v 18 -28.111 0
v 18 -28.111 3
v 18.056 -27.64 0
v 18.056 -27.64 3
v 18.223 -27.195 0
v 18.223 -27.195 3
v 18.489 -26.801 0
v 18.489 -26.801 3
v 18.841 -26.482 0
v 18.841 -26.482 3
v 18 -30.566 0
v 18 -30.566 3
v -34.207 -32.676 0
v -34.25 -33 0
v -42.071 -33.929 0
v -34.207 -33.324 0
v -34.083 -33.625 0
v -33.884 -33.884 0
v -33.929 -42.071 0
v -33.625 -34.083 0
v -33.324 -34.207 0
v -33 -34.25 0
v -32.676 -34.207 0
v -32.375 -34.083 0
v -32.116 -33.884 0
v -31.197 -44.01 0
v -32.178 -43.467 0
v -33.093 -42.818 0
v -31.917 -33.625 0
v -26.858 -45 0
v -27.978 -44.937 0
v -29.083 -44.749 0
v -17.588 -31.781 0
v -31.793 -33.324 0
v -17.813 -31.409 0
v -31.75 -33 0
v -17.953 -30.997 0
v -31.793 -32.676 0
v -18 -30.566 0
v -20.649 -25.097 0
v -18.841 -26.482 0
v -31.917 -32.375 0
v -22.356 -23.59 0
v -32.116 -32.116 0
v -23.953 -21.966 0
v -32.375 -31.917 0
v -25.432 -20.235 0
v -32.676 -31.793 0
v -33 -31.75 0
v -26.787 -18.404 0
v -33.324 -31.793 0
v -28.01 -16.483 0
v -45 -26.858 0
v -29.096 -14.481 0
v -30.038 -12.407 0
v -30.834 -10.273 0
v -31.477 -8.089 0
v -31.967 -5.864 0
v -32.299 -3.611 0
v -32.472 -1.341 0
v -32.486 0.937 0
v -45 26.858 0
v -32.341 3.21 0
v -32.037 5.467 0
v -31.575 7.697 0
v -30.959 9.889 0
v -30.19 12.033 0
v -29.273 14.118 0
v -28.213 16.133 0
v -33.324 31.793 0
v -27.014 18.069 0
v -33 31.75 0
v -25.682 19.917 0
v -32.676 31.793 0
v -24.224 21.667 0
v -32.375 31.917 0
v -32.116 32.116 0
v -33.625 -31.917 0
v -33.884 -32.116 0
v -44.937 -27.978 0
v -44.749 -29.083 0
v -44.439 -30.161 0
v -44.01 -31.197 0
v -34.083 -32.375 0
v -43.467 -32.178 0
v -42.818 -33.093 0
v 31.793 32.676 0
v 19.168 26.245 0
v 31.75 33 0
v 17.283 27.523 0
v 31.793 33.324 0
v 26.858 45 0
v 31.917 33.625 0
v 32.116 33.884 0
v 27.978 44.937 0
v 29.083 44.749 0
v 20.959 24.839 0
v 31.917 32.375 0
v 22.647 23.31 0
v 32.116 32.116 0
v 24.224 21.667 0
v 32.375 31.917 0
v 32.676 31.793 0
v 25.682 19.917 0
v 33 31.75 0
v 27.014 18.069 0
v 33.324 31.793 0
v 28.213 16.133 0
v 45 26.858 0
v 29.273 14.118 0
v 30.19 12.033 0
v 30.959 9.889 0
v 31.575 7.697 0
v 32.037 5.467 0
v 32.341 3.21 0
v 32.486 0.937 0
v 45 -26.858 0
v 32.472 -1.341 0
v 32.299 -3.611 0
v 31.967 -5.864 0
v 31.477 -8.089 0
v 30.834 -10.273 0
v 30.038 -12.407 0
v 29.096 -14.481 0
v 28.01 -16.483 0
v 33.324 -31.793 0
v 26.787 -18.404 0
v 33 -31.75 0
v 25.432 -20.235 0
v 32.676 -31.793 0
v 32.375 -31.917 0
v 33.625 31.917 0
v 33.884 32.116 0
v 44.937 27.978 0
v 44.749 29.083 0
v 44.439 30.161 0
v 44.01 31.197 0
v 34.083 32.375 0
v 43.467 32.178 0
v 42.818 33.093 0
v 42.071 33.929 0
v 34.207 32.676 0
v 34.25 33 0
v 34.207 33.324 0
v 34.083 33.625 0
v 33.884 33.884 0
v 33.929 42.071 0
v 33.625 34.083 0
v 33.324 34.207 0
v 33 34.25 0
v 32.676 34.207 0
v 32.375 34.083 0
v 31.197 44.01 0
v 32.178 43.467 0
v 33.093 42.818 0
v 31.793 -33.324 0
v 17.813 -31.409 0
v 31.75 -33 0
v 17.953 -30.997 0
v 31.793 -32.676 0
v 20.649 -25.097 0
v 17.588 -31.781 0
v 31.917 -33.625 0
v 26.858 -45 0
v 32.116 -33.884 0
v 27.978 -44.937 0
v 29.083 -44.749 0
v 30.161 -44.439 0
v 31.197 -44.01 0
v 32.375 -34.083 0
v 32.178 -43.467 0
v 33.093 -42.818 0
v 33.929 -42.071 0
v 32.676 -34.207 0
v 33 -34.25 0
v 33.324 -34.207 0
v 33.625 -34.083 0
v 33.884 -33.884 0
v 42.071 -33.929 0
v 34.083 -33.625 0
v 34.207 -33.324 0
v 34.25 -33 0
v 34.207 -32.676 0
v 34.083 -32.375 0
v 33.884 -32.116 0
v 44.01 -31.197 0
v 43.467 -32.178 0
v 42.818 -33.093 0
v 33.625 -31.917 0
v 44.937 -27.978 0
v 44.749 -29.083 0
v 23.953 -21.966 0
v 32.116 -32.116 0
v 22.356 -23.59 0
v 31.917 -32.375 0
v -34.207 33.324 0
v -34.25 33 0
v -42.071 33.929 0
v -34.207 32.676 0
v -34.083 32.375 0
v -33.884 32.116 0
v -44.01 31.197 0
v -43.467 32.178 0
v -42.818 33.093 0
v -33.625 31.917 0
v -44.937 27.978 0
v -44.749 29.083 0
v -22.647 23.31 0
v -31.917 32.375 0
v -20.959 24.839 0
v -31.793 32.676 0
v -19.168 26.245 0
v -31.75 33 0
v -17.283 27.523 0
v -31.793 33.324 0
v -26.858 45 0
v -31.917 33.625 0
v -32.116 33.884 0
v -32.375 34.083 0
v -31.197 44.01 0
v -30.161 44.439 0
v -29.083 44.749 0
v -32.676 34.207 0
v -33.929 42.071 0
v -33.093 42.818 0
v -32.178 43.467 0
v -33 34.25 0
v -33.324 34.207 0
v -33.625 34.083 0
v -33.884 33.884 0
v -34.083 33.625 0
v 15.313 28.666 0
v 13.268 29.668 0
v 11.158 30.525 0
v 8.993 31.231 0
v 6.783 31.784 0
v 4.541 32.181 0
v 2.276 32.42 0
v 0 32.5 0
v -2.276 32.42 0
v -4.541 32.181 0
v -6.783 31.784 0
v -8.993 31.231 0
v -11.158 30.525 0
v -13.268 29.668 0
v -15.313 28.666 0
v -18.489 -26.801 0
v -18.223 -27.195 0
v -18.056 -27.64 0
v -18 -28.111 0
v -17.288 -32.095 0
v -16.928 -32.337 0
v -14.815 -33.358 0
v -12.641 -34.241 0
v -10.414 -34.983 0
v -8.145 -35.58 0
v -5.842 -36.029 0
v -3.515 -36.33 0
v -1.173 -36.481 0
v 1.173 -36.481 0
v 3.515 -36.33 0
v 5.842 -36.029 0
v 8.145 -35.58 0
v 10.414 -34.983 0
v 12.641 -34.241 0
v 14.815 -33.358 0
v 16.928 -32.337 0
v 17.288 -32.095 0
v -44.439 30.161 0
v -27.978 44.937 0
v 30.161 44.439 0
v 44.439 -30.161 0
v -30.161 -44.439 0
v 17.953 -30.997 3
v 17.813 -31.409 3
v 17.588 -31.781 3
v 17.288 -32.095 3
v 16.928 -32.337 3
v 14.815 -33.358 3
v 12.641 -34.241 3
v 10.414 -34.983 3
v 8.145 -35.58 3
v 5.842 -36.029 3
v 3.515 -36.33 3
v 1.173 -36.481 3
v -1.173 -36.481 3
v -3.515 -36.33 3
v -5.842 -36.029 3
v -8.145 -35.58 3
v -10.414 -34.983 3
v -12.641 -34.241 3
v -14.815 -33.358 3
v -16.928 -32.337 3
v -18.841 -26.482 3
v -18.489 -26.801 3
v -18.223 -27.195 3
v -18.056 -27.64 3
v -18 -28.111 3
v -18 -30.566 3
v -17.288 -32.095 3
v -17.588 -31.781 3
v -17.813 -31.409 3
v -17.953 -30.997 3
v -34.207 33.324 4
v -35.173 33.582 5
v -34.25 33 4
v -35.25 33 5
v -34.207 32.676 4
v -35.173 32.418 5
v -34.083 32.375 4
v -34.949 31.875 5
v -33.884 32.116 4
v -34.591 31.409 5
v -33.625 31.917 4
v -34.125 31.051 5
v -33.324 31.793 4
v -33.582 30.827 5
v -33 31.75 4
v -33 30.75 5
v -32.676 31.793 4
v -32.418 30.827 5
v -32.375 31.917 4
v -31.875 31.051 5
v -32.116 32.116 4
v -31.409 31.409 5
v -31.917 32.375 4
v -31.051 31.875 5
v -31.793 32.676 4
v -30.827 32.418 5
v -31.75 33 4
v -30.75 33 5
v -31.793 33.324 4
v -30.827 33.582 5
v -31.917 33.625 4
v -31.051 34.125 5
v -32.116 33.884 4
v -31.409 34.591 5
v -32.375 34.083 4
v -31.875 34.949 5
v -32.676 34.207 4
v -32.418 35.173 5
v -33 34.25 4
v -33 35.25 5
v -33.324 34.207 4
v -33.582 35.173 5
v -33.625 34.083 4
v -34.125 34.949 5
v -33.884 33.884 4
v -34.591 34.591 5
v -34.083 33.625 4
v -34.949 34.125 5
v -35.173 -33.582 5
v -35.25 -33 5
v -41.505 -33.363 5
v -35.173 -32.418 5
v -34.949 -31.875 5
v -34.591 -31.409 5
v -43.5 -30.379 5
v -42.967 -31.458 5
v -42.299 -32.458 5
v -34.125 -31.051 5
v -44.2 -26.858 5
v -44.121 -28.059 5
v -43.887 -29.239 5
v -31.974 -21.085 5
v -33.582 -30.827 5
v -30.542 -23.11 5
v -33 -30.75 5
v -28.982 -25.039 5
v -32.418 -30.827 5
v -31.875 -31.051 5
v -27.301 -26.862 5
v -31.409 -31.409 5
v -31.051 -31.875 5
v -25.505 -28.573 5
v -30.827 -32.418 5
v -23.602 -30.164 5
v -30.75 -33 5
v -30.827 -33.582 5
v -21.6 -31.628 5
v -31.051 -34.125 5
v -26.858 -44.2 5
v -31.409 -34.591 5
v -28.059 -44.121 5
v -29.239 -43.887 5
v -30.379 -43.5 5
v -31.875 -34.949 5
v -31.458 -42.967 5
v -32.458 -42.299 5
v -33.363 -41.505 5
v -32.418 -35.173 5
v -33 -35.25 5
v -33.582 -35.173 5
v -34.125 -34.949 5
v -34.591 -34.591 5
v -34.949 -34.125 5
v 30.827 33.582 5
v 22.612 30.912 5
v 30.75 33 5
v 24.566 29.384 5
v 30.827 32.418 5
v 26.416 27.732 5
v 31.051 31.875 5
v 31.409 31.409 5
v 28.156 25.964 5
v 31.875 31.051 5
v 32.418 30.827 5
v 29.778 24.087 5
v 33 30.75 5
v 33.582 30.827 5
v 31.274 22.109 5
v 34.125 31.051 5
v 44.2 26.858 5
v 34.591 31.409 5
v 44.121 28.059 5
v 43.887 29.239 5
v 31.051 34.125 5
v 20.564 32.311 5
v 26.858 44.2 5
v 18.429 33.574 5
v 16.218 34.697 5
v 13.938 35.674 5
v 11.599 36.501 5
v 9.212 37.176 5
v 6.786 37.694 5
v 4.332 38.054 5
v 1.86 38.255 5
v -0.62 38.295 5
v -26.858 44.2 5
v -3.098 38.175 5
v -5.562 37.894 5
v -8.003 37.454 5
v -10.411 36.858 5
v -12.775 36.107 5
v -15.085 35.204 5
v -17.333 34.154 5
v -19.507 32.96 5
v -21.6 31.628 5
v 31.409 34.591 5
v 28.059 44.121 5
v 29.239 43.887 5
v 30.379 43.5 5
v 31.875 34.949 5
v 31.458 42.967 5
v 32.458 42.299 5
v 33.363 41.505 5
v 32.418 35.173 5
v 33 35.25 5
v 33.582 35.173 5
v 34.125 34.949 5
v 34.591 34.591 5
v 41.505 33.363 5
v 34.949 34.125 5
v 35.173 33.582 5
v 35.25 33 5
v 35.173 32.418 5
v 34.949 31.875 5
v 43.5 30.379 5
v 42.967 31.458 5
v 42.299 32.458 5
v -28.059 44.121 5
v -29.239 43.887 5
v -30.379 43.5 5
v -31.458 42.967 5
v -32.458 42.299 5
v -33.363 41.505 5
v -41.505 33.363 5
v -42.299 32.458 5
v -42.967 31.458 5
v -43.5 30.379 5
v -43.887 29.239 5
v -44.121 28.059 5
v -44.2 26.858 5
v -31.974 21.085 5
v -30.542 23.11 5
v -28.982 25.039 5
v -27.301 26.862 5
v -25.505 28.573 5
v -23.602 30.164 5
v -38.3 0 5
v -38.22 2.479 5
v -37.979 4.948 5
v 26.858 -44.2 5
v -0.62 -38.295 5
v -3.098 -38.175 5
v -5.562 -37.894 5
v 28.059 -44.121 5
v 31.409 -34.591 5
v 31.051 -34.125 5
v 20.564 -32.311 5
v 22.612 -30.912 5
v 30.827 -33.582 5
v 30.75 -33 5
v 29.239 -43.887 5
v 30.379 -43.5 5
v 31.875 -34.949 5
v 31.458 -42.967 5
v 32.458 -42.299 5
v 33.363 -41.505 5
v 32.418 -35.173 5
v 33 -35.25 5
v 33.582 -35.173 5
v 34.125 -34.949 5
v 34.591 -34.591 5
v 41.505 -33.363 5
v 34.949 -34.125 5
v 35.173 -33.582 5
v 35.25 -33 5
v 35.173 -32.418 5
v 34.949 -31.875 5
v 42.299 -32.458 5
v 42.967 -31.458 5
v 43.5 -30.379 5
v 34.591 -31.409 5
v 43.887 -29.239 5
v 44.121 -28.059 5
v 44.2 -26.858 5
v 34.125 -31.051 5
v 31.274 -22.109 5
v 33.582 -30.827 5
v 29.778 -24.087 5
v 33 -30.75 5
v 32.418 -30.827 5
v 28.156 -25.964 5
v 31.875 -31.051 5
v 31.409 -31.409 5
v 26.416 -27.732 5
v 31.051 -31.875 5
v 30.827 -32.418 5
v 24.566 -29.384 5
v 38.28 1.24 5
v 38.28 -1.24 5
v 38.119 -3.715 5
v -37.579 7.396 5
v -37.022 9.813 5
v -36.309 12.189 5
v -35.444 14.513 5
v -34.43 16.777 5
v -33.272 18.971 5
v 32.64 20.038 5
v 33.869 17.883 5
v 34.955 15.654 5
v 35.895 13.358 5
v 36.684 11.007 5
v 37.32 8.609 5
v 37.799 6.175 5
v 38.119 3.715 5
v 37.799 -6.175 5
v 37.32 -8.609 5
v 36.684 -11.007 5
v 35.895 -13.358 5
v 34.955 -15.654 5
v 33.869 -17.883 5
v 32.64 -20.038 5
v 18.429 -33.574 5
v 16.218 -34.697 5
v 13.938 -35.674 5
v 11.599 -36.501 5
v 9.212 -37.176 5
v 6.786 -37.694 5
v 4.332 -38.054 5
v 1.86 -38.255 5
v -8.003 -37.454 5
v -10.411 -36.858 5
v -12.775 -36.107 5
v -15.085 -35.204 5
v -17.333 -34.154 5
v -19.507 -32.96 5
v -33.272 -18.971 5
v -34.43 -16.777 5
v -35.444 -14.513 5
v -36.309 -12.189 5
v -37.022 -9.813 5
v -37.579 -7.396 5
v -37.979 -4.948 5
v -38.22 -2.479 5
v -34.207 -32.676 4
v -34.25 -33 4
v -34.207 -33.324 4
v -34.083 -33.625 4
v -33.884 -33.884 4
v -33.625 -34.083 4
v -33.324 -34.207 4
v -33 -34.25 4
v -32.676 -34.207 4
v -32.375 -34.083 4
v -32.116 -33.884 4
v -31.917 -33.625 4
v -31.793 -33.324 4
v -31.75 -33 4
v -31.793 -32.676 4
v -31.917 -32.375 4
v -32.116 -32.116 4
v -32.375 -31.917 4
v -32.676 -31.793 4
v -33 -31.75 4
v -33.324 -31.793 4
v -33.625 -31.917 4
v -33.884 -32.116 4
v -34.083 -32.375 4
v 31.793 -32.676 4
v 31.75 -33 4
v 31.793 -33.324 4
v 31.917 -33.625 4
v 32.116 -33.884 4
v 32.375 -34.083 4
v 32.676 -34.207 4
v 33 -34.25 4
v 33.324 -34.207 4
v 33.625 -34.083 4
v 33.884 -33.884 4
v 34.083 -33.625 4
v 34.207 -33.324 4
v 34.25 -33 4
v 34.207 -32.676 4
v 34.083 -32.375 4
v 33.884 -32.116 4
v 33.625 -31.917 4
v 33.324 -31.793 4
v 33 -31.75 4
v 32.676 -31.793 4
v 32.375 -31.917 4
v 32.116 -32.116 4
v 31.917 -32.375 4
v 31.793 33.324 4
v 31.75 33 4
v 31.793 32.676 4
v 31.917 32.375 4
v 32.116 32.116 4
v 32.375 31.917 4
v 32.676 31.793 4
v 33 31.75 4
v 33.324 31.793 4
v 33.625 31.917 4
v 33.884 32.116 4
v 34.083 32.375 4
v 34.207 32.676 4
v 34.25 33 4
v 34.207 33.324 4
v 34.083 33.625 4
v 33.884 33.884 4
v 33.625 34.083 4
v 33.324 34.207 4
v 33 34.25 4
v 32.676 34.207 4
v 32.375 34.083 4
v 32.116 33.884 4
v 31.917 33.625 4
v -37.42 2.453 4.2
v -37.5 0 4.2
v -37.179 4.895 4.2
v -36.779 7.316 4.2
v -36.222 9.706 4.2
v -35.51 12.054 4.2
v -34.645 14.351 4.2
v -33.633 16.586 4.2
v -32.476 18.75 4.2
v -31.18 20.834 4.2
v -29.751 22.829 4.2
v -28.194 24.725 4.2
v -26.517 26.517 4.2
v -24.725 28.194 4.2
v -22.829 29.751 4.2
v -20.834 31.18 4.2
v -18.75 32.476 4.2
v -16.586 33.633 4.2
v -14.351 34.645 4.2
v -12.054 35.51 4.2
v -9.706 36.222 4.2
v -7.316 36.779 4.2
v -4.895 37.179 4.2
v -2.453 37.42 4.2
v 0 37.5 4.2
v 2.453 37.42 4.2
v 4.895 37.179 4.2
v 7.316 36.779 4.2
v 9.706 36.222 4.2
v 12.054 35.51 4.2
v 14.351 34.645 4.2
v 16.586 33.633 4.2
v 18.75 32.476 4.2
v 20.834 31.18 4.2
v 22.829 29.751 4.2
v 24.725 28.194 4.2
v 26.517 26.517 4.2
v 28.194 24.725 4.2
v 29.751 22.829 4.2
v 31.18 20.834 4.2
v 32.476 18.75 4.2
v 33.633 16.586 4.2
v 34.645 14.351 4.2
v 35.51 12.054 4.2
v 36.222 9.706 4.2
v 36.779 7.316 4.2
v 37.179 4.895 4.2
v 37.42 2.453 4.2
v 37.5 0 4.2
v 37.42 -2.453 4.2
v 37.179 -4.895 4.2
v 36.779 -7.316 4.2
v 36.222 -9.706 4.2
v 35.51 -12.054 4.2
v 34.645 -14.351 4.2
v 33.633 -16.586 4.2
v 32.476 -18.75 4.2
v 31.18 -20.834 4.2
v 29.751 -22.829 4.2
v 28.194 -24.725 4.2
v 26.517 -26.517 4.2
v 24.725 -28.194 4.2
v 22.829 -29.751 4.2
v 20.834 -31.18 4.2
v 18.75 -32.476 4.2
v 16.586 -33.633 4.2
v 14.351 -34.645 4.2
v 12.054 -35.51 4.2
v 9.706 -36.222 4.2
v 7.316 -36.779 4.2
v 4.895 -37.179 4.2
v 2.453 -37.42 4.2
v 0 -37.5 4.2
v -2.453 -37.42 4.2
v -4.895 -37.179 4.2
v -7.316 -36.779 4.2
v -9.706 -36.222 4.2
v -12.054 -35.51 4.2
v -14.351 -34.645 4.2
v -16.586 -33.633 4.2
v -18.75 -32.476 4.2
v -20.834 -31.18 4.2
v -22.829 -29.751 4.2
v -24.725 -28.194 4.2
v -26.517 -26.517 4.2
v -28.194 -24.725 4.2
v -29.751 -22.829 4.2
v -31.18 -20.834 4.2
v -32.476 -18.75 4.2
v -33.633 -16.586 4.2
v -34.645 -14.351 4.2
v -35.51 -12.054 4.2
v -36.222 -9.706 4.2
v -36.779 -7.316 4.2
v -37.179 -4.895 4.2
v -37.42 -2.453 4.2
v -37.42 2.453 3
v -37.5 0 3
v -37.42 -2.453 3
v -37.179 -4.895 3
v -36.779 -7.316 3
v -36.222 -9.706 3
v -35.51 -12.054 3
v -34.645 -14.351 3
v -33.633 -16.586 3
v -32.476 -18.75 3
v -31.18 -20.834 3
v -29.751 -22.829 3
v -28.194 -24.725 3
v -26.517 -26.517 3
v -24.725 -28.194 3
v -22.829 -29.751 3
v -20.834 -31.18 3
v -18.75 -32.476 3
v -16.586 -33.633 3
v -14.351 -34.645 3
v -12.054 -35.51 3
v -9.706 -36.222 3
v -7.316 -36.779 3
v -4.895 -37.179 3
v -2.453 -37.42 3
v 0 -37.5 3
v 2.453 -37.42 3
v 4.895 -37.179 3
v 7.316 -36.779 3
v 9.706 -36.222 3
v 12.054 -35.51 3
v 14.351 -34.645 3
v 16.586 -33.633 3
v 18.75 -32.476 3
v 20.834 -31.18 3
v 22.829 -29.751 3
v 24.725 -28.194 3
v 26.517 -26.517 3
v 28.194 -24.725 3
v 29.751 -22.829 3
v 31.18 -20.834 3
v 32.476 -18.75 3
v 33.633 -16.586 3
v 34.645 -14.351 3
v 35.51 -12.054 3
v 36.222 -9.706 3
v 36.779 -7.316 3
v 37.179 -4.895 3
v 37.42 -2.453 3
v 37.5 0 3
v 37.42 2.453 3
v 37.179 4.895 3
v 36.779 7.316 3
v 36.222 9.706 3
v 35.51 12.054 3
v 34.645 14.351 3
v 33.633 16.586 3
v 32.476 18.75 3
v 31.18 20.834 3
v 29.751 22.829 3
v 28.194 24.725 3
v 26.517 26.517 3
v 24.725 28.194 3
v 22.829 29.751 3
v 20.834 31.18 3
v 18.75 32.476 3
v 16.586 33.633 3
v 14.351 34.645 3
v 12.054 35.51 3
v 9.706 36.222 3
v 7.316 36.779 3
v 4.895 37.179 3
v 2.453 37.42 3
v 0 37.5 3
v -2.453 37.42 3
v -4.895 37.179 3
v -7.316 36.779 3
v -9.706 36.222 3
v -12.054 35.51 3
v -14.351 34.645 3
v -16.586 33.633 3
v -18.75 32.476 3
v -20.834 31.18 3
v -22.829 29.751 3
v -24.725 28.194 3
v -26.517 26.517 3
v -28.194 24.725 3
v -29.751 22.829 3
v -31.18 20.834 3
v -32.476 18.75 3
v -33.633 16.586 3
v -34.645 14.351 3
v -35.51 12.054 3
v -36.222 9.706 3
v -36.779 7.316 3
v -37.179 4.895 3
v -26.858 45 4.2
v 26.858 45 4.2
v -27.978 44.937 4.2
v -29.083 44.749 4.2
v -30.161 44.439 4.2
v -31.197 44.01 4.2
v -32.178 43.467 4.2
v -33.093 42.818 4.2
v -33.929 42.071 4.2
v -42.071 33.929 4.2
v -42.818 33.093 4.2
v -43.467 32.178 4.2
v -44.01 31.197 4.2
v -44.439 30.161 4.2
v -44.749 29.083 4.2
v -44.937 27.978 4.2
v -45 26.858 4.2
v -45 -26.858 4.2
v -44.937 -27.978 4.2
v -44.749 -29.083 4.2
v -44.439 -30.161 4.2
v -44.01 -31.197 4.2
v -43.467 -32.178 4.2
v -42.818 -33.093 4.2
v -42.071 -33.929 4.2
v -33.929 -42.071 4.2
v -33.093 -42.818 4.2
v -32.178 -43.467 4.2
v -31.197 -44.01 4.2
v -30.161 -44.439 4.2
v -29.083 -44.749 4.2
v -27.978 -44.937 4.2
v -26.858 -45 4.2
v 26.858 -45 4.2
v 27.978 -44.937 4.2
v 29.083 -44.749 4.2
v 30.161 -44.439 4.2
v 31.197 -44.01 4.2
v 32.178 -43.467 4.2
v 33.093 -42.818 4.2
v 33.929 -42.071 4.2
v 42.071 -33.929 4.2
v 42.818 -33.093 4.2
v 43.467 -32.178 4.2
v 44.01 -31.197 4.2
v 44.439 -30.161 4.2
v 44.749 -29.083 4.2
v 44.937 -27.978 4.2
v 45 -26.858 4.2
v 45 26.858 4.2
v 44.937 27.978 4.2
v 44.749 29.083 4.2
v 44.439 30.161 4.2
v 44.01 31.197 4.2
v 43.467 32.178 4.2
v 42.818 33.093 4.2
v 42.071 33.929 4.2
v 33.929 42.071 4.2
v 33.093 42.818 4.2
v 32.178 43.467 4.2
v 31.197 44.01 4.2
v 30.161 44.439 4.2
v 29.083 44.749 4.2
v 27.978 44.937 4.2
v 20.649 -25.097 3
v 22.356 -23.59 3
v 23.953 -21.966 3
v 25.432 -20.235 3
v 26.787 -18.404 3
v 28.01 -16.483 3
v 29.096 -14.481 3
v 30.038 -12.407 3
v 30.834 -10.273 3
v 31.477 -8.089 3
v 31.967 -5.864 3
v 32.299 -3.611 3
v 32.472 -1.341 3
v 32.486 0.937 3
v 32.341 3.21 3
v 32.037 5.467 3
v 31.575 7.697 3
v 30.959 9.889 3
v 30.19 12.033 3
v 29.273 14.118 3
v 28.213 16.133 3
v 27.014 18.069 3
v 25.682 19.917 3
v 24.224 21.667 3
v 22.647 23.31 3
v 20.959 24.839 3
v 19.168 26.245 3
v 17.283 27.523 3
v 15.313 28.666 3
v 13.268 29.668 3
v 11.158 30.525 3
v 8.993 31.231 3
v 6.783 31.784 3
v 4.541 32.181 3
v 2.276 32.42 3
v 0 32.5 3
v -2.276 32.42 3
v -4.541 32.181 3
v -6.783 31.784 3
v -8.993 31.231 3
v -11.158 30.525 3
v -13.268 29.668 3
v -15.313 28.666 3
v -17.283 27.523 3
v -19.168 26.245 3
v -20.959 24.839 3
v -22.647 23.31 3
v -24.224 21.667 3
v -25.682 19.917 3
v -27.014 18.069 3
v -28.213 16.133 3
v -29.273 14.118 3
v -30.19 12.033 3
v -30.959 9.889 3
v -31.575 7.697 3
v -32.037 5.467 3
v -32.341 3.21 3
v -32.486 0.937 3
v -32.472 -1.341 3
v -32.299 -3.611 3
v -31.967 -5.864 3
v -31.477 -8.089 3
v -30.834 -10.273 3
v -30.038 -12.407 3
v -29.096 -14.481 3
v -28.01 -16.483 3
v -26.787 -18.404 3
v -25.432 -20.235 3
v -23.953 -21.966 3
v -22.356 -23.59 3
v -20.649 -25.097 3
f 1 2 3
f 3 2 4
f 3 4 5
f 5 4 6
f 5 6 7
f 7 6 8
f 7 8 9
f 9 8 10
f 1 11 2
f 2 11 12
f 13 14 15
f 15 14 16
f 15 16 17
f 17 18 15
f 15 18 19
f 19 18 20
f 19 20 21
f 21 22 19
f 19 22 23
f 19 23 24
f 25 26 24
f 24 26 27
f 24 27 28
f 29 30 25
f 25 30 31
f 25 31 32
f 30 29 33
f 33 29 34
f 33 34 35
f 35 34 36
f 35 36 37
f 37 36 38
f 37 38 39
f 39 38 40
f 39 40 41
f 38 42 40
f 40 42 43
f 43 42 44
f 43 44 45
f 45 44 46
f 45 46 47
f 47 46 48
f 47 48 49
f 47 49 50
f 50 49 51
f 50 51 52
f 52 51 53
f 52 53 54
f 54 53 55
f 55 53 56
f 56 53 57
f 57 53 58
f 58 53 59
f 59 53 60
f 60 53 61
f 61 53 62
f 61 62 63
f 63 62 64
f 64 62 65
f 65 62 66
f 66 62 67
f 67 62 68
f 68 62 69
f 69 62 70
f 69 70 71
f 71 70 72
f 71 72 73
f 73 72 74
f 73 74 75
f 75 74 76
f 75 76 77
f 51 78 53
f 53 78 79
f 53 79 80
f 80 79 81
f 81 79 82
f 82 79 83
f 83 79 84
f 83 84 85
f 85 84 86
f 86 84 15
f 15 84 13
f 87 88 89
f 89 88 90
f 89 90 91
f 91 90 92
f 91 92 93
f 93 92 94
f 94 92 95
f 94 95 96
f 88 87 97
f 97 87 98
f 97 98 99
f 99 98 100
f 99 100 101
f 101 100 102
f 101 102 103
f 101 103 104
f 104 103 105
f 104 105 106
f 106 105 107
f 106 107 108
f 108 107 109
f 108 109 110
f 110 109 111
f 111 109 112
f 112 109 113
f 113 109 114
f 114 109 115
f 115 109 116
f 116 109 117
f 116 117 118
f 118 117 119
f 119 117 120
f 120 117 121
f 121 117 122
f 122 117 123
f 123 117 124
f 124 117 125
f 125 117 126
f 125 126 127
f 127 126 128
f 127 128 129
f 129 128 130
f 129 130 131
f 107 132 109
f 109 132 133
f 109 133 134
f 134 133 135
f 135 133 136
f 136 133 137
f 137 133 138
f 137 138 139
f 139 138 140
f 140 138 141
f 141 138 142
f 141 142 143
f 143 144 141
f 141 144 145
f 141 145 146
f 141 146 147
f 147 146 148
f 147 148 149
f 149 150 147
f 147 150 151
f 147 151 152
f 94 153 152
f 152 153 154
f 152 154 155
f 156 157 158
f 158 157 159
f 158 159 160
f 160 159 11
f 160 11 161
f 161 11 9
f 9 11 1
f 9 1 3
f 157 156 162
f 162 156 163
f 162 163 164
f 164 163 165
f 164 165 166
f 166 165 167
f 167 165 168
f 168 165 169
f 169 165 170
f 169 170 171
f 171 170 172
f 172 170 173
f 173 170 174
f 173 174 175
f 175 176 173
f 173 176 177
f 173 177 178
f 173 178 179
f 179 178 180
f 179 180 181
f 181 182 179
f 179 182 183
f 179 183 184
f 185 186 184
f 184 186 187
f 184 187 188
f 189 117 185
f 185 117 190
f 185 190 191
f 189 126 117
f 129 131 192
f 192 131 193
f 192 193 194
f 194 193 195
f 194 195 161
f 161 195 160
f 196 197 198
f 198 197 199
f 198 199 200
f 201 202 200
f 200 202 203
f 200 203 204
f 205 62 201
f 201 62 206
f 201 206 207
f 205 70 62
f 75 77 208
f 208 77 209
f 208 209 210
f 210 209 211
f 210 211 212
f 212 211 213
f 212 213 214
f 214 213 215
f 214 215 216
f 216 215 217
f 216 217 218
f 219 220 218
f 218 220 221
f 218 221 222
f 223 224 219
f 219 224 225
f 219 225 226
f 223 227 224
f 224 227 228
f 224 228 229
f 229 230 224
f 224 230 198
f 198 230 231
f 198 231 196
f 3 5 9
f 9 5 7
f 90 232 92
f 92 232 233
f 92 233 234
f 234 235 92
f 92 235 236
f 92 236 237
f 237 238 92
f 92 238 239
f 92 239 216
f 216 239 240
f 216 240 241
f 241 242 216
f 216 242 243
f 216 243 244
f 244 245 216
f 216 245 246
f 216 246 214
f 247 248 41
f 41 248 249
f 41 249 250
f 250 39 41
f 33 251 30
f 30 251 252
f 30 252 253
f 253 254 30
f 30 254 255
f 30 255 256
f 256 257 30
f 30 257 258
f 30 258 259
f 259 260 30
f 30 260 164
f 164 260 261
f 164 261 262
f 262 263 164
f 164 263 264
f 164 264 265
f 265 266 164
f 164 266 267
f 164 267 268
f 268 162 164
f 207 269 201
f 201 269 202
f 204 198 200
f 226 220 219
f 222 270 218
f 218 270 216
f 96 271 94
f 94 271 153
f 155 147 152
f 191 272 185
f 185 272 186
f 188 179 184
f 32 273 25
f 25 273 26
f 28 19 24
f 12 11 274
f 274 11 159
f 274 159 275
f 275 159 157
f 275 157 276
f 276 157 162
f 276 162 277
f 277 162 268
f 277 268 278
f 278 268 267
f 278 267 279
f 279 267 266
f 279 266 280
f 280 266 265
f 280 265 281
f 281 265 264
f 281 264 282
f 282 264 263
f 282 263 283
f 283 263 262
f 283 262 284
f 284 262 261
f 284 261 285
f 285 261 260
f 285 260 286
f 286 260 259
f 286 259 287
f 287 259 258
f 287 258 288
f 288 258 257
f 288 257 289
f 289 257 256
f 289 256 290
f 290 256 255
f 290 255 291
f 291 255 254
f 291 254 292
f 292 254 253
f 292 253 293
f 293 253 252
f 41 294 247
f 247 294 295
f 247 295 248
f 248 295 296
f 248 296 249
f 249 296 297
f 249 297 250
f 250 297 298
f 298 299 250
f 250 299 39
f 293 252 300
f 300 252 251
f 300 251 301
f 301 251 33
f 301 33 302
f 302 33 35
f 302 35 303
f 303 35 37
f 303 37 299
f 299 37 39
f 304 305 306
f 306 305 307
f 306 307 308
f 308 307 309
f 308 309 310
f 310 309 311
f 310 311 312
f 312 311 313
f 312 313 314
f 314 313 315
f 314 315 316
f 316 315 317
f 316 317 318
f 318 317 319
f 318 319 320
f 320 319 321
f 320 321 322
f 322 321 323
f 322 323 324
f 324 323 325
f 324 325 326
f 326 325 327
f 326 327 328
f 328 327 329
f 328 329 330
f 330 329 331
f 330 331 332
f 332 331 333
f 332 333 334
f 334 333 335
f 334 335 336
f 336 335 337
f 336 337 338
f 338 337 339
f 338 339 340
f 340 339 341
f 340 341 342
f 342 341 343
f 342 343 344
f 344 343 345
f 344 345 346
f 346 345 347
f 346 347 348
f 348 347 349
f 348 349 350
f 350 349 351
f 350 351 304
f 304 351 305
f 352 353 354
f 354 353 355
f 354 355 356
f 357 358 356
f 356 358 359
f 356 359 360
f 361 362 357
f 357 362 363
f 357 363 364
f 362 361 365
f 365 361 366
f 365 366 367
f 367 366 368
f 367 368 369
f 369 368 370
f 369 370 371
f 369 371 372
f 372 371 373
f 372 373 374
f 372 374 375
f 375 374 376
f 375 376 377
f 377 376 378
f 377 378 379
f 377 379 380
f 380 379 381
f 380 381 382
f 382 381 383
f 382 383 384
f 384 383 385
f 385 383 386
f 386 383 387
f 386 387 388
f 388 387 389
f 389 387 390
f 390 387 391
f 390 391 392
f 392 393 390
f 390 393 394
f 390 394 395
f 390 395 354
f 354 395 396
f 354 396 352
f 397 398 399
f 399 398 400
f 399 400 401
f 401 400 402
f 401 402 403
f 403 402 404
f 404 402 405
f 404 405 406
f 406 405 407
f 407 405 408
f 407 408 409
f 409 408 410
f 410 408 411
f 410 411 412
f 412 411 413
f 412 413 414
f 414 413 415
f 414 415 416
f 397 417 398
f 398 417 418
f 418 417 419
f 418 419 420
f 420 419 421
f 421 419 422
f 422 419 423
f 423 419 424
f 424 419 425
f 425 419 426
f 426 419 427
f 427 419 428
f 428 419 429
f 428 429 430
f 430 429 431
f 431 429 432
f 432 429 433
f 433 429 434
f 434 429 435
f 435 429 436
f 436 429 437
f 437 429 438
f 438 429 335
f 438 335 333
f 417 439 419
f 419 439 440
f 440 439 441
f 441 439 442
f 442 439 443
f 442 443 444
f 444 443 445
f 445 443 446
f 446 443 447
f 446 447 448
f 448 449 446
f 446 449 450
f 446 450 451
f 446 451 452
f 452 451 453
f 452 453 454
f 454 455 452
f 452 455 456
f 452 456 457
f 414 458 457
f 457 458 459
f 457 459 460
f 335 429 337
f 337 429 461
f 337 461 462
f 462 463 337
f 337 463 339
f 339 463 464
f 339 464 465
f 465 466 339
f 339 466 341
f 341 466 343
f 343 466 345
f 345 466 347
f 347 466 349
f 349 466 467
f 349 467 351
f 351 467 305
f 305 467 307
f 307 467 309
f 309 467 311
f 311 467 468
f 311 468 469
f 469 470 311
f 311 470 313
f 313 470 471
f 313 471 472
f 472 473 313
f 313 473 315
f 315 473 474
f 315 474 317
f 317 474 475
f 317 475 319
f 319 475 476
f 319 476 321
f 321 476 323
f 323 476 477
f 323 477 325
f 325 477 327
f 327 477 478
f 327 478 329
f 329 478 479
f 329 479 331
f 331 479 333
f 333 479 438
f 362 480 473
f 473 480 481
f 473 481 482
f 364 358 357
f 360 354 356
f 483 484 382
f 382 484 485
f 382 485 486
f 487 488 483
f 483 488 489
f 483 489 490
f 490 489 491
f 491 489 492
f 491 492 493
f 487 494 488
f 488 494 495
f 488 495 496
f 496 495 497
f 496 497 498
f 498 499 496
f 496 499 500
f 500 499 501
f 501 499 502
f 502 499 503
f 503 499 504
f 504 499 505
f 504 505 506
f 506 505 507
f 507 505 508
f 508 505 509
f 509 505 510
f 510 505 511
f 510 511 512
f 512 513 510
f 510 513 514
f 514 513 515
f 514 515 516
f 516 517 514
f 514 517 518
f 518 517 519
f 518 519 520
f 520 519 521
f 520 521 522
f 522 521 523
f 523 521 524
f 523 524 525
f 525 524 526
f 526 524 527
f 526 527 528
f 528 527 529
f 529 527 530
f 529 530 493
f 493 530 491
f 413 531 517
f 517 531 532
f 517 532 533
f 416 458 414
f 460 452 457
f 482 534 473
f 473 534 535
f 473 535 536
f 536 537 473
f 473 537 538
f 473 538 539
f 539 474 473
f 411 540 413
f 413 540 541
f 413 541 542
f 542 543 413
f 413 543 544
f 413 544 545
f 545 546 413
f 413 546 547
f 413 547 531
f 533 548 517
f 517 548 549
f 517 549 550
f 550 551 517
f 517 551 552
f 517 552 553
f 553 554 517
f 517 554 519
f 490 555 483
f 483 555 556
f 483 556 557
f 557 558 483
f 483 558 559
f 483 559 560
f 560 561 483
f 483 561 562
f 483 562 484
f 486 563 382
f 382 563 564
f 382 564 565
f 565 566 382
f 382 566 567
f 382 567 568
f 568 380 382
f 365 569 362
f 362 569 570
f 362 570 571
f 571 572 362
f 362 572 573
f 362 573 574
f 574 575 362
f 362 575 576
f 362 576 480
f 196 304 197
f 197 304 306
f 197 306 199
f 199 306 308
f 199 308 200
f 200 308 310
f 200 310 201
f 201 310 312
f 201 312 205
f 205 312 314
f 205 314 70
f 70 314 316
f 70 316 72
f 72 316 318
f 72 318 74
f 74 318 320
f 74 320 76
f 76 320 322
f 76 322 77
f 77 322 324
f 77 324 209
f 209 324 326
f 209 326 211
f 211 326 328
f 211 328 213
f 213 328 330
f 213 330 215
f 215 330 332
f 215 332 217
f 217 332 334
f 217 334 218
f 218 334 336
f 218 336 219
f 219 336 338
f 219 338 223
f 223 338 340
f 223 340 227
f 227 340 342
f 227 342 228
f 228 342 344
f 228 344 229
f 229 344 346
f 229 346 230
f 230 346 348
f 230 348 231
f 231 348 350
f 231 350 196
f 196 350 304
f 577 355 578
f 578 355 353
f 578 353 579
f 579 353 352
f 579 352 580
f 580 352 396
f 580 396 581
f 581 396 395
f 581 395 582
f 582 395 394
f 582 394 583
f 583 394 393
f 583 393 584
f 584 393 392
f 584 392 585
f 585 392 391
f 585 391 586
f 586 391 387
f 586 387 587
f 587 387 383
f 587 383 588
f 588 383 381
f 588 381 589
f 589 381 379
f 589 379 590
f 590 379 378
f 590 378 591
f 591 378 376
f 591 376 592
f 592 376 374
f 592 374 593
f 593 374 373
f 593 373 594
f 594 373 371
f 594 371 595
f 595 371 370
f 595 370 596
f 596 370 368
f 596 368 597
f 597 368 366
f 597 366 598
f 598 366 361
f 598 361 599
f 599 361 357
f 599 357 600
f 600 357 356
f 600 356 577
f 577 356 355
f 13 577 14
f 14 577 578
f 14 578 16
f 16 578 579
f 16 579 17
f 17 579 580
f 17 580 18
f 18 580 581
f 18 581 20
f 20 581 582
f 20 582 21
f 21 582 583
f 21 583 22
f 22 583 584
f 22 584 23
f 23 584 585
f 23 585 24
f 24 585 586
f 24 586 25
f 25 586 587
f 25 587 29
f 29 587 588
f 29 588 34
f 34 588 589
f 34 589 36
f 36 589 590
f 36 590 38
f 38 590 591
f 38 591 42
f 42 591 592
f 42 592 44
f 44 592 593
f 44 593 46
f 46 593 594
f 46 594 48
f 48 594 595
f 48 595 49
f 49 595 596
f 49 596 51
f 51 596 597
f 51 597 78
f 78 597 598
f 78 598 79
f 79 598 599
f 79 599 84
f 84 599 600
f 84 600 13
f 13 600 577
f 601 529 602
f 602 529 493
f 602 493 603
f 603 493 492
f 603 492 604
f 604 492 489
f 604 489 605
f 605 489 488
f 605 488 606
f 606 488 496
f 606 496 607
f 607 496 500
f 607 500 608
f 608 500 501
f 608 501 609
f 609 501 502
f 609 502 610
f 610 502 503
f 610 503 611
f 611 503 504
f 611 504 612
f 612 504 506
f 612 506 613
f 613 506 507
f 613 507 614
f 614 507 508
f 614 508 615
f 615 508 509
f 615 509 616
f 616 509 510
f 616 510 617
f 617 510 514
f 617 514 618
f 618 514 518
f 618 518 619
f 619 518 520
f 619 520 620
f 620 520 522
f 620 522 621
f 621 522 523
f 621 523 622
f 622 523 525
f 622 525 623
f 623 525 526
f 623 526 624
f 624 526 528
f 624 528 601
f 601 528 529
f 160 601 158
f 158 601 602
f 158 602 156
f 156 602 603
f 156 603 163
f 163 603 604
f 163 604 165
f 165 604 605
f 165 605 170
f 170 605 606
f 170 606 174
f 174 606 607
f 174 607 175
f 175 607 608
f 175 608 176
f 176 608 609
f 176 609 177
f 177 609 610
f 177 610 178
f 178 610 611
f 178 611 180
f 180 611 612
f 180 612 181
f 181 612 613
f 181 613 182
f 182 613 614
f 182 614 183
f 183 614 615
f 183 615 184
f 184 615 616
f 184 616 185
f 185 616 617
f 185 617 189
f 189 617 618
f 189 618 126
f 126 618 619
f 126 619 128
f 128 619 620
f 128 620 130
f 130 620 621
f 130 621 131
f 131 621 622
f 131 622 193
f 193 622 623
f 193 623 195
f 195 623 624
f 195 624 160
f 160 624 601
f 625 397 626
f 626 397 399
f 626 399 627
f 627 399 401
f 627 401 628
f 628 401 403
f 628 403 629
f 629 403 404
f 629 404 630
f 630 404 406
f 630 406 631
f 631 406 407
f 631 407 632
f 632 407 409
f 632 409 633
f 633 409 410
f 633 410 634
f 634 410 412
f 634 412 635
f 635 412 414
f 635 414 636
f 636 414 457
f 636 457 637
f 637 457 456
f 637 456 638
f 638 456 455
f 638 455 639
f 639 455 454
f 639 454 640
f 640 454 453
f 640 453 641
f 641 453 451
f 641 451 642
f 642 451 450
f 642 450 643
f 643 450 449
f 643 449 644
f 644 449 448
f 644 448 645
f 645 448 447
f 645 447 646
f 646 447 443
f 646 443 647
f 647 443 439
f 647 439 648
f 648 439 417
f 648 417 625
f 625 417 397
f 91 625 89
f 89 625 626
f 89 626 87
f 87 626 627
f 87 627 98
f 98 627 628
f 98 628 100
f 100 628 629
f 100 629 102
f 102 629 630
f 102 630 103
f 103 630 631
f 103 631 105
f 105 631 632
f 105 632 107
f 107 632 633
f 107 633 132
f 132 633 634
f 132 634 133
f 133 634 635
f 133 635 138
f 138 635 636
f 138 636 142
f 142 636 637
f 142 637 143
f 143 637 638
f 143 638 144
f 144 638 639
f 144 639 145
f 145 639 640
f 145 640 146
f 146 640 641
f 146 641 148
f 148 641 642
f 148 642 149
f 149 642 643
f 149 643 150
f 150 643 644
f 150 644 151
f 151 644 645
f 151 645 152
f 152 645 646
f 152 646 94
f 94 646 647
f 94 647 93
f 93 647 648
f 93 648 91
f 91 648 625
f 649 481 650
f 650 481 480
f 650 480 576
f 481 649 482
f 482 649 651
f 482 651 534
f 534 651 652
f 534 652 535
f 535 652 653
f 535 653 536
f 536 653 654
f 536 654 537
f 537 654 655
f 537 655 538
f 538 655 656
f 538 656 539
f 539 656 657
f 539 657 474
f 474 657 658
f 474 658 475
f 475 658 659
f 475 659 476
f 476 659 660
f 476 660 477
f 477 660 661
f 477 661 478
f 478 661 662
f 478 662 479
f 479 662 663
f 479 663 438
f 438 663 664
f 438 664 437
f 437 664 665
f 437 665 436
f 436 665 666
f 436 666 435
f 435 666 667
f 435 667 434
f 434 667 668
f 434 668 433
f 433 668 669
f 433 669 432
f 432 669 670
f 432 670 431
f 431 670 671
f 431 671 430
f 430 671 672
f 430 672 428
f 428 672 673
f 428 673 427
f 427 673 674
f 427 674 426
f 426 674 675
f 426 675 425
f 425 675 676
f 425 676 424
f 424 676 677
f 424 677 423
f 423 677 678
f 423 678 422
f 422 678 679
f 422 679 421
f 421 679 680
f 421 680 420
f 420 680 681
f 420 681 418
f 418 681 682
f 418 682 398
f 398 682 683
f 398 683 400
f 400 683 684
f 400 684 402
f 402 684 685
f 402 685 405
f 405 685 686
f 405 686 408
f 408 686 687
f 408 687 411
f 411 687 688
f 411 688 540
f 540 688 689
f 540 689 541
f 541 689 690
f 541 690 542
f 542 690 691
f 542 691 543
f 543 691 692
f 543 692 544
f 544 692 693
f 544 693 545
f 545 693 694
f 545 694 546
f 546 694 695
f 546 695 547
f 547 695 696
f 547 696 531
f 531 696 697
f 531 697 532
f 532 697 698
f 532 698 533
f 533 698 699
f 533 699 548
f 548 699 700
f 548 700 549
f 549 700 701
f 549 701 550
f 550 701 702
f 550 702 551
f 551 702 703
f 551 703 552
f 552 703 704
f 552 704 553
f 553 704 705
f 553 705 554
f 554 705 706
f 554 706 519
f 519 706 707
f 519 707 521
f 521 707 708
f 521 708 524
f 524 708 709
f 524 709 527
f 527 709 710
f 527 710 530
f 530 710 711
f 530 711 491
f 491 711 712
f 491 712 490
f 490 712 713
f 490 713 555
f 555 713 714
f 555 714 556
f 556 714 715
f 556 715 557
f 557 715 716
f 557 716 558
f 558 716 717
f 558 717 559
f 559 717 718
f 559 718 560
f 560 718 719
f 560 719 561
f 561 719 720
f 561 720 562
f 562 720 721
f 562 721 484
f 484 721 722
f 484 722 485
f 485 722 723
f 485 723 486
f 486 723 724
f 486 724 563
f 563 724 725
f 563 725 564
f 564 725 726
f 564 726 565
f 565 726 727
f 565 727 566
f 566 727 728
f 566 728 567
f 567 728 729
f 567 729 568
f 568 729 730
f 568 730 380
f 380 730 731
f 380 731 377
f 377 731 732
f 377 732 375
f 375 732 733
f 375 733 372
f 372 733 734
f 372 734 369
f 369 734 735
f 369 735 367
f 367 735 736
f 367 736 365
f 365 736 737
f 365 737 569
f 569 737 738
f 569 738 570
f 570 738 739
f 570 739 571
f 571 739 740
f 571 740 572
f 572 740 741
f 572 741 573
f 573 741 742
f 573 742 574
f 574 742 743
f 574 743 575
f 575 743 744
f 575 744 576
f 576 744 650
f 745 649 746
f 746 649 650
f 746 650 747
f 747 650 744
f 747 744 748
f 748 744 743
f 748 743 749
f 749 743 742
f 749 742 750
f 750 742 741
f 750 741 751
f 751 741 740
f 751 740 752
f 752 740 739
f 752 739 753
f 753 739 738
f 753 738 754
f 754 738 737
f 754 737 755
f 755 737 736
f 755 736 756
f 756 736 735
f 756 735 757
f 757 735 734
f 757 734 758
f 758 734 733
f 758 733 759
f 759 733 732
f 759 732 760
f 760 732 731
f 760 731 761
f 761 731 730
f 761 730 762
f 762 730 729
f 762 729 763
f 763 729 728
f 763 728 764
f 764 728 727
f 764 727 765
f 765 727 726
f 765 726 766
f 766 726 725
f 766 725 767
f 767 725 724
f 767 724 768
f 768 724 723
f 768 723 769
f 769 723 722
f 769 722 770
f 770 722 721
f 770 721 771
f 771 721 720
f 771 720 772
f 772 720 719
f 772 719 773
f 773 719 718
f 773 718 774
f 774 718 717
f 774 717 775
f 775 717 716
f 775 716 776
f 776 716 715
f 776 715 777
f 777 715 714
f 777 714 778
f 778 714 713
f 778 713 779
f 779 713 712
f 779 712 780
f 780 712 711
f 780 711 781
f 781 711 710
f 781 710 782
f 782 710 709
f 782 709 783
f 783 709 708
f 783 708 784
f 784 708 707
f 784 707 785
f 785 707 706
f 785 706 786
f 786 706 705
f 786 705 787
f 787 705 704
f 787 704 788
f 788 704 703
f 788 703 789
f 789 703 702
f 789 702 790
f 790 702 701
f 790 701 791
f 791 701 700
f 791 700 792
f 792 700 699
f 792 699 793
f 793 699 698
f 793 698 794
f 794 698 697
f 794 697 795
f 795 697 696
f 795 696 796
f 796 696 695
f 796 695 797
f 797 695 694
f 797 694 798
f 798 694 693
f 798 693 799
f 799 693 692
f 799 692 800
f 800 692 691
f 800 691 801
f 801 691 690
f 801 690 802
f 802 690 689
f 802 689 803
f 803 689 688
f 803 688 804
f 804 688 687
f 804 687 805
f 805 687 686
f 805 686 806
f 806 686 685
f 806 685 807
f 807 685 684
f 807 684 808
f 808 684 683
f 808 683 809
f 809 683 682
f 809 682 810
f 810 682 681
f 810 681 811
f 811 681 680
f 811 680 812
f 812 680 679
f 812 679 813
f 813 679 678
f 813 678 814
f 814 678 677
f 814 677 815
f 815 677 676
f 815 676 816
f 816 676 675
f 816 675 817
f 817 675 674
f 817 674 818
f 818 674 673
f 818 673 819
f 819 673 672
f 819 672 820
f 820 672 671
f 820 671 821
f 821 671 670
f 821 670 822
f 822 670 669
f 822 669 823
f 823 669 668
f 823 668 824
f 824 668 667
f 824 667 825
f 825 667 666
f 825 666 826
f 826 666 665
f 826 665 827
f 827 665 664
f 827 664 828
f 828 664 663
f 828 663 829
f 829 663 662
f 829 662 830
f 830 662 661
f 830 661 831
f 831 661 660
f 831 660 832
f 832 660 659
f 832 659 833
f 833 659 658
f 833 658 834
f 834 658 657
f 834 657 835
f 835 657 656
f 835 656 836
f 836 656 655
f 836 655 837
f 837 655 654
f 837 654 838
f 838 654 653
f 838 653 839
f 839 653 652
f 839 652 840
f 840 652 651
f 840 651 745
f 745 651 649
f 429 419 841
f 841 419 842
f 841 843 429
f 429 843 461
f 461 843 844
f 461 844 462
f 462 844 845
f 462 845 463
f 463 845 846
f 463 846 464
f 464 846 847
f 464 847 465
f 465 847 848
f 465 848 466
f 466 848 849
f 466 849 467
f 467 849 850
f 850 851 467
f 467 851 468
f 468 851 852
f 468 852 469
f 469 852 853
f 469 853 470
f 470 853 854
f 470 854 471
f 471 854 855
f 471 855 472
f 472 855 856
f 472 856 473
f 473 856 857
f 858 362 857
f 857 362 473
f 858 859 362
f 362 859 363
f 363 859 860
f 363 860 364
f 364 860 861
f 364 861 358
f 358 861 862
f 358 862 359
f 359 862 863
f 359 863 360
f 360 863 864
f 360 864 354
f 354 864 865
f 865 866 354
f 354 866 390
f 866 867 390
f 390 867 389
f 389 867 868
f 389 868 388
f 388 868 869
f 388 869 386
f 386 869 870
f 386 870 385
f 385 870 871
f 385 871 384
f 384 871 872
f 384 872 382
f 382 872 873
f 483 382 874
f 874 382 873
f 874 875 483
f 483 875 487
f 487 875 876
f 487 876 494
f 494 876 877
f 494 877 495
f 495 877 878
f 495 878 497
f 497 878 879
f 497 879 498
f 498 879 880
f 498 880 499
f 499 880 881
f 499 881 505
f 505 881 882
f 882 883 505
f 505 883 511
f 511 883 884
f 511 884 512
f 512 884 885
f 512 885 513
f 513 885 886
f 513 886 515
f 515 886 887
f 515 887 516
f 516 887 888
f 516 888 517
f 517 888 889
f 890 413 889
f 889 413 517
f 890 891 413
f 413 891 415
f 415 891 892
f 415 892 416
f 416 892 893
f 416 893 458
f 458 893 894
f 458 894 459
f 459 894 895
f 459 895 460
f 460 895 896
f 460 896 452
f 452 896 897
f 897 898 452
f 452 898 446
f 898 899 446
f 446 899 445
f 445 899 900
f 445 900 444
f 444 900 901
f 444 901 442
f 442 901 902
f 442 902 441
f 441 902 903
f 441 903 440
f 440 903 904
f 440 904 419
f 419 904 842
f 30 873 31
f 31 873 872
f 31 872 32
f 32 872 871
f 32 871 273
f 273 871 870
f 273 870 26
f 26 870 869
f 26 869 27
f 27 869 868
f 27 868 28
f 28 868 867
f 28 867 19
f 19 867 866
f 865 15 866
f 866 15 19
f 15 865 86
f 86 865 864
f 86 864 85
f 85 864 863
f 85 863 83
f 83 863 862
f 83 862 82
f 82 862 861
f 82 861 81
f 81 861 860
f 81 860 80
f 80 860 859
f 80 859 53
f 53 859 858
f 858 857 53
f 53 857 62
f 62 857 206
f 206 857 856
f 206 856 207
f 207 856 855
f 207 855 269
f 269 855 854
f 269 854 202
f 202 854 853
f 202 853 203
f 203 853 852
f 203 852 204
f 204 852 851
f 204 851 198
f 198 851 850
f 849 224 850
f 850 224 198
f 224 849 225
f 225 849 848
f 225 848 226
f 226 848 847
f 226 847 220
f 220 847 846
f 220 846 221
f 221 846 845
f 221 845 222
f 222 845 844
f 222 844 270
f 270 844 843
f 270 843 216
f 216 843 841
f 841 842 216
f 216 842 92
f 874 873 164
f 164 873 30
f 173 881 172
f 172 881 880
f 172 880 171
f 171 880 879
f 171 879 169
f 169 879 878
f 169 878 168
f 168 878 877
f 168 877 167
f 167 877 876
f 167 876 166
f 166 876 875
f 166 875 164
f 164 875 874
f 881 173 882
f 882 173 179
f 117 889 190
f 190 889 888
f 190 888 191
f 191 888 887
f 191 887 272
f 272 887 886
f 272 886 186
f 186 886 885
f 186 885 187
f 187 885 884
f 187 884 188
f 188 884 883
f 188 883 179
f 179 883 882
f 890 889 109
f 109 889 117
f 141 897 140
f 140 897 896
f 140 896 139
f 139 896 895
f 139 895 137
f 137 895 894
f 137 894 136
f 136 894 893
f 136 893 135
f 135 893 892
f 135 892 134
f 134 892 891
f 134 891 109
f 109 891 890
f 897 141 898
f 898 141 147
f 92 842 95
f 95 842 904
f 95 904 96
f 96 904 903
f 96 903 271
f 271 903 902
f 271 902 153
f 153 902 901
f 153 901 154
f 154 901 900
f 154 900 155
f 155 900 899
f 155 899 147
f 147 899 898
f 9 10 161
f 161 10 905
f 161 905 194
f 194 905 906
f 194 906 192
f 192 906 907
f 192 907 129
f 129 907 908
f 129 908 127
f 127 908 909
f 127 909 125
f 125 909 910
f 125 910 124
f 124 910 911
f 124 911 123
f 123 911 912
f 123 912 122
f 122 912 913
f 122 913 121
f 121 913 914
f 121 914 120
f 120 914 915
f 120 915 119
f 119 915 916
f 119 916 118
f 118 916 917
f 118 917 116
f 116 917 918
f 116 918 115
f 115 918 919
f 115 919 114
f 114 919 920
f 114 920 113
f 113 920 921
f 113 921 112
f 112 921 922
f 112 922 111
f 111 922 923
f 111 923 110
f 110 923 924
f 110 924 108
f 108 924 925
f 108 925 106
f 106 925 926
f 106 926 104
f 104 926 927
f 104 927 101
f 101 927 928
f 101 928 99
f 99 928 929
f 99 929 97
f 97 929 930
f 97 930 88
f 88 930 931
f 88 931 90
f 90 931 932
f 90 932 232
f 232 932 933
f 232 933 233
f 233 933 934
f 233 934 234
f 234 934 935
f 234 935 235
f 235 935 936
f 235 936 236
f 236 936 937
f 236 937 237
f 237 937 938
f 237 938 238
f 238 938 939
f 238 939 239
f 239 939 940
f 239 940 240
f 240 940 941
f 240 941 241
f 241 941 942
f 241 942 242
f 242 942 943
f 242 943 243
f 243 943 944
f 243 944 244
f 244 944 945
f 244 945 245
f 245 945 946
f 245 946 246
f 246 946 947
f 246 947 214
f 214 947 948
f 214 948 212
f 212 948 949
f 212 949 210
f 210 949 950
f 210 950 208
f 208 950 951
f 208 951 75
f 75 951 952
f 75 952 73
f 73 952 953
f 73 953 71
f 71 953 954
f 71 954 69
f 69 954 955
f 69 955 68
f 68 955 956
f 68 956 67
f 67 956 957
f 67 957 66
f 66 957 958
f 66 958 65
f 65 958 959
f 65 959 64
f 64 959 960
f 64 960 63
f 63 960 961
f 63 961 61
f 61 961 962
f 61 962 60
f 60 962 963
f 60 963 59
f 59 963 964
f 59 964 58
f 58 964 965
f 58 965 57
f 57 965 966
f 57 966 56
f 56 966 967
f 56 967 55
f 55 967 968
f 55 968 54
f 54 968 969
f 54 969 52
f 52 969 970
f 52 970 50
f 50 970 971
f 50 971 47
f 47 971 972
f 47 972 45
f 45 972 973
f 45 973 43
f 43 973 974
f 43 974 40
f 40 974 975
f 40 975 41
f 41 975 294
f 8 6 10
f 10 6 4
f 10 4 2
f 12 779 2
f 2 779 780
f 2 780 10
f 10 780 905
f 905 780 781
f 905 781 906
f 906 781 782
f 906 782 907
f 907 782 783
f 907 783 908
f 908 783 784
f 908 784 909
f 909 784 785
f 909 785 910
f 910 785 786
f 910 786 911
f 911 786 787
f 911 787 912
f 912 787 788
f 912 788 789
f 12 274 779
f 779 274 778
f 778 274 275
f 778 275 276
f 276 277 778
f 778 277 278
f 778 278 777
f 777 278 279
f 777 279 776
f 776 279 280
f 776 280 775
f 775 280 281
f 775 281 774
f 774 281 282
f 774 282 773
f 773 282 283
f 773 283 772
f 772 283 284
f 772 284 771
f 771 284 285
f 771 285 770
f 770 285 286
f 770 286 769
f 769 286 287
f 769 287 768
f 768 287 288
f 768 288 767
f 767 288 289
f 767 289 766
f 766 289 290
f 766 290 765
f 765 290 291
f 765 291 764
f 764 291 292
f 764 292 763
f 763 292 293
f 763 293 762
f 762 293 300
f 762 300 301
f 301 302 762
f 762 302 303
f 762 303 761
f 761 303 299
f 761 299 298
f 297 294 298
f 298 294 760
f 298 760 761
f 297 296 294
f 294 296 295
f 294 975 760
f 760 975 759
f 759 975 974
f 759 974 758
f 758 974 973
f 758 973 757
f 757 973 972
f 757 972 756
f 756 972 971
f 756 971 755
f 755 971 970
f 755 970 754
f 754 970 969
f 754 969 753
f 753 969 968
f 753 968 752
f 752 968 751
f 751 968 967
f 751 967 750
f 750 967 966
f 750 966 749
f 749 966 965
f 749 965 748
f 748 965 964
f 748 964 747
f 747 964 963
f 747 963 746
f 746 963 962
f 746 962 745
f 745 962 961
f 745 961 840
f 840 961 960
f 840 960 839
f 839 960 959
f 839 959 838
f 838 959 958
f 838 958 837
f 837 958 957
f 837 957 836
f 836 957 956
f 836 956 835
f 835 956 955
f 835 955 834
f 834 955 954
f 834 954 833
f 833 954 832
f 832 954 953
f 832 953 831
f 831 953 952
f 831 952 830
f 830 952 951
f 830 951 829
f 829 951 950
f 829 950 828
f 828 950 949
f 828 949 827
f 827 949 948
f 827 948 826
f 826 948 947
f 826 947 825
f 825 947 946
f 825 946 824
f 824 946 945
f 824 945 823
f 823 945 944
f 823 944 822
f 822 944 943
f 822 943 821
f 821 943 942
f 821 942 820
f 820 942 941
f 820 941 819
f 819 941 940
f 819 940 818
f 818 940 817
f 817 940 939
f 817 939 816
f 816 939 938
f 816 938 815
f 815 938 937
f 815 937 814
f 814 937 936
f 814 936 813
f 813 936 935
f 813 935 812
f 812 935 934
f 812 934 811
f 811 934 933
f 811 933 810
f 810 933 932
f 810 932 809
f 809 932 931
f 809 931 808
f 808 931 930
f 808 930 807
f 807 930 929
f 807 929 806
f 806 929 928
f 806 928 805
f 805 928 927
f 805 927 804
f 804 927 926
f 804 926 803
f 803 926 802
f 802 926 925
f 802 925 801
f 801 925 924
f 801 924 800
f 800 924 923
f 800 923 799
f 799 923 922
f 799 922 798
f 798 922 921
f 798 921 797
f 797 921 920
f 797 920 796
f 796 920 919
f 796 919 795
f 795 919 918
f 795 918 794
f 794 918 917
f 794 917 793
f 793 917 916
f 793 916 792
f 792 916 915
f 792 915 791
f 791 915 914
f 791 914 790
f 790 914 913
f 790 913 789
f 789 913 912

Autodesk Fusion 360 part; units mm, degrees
sketch "Sketch1" plane through (0, 0, 0) normal (0, 0, 1) x (1, 0, 0)
  circle A0 centre (0, 0) radius 37.5
  circle A1 centre (0, 0) radius 32.5
  circle A2 centre (0, 0) radius 36.5
  line L0 (-18, 0) -> (18, 0)
  line L1 (18, 0) -> (18, -31.753)
  line L2 (-18, 0) -> (-18, -31.753)
  line L3 (45, -45) -> (-45, -45)
  line L4 (-45, -45) -> (-45, 45)
  line L5 (-45, 45) -> (45, 45)
  line L6 (45, 45) -> (45, -45)
  line L7 (45, -45) -> (-45, 45) construction
  line L8 (-45, -45) -> (45, 45) construction
  dimension "d1" = 75
  dimension "d2" = -5
  dimension "d3" = -1
  dimension "d4" = 36
  dimension "d5" = 90
  dimension "d6" = 90
extrude "Extrude1" add sketch "Sketch1" along normal blind 5 contours L3 L4 L5 L6
extrude "Extrude2" add sketch "Sketch1" along normal blind 3 contours A0 | A1 A2 L1 L2 picked at (-19.5132, -29.1741)
chamfer "Chamfer1" distance 14 angle 45 4 edges at (-45, 45, 2.5) (45, 45, 2.5) (45, -45, 2.5) (-45, -45, 2.5)
fillet "Fillet1" radius 10 8 edges at (-31, 45, 2.5) (-45, 31, 2.5) (31, 45, 2.5) (45, 31, 2.5) (45, -31, 2.5) (31, -45, 2.5) (-31, -45, 2.5) (-45, -31, 2.5)
sketch "Sketch2" plane through (0, 0, 0) normal (0, 0, 1) x (1, 0, 0)
  line L0 (33, -33) -> (-33, -33)
  line L1 (-33, -33) -> (-33, 33)
  line L2 (-33, 33) -> (33, 33)
  line L3 (33, 33) -> (33, -33)
  line L4 (33, -33) -> (-33, 33) construction
  line L5 (-33, -33) -> (33, 33) construction
  dimension "d14" = 66
  dimension "d15" = 66
hole "Hole1" at (33, 33, 0) at (33, -33, 0) at (-33, -33, 0) at (-33, 33, 0) direction (0, 0, 1) diameter 2.5 depth 5 tip angle 180
chamfer "Chamfer2" distance 0.8 angle 45 16 edges at (0, 45, 5) (-30.6847, 44.2388, 5) (-38, 38, 5) (-44.2388, 30.6847, 5) (-45, 0, 5) (-44.2388, -30.6847, 5) (-38, -38, 5) (-30.6847, -44.2388, 5) (0, -45, 5) (30.6847, -44.2388, 5) (38, -38, 5) (44.2388, -30.6847, 5) (45, 0, 5) (44.2388, 30.6847, 5) (38, 38, 5) (30.6847, 44.2388, 5)
chamfer "Chamfer2" distance 0.8 angle 45 1 edges at (-34.9623, 13.5606, 5)
chamfer "Chamfer2" distance 1 angle 45 4 edges at (34.1654, 32.548, 5) (34.1654, -33.452, 5) (-31.8346, -33.452, 5) (-31.8346, 32.548, 5)
fillet "Fillet2" radius 2 4 edges at (-18, -31.753, 1.5) (-18, -27.0601, 1.5) (18, -31.753, 1.5) (18, -27.0601, 1.5)
